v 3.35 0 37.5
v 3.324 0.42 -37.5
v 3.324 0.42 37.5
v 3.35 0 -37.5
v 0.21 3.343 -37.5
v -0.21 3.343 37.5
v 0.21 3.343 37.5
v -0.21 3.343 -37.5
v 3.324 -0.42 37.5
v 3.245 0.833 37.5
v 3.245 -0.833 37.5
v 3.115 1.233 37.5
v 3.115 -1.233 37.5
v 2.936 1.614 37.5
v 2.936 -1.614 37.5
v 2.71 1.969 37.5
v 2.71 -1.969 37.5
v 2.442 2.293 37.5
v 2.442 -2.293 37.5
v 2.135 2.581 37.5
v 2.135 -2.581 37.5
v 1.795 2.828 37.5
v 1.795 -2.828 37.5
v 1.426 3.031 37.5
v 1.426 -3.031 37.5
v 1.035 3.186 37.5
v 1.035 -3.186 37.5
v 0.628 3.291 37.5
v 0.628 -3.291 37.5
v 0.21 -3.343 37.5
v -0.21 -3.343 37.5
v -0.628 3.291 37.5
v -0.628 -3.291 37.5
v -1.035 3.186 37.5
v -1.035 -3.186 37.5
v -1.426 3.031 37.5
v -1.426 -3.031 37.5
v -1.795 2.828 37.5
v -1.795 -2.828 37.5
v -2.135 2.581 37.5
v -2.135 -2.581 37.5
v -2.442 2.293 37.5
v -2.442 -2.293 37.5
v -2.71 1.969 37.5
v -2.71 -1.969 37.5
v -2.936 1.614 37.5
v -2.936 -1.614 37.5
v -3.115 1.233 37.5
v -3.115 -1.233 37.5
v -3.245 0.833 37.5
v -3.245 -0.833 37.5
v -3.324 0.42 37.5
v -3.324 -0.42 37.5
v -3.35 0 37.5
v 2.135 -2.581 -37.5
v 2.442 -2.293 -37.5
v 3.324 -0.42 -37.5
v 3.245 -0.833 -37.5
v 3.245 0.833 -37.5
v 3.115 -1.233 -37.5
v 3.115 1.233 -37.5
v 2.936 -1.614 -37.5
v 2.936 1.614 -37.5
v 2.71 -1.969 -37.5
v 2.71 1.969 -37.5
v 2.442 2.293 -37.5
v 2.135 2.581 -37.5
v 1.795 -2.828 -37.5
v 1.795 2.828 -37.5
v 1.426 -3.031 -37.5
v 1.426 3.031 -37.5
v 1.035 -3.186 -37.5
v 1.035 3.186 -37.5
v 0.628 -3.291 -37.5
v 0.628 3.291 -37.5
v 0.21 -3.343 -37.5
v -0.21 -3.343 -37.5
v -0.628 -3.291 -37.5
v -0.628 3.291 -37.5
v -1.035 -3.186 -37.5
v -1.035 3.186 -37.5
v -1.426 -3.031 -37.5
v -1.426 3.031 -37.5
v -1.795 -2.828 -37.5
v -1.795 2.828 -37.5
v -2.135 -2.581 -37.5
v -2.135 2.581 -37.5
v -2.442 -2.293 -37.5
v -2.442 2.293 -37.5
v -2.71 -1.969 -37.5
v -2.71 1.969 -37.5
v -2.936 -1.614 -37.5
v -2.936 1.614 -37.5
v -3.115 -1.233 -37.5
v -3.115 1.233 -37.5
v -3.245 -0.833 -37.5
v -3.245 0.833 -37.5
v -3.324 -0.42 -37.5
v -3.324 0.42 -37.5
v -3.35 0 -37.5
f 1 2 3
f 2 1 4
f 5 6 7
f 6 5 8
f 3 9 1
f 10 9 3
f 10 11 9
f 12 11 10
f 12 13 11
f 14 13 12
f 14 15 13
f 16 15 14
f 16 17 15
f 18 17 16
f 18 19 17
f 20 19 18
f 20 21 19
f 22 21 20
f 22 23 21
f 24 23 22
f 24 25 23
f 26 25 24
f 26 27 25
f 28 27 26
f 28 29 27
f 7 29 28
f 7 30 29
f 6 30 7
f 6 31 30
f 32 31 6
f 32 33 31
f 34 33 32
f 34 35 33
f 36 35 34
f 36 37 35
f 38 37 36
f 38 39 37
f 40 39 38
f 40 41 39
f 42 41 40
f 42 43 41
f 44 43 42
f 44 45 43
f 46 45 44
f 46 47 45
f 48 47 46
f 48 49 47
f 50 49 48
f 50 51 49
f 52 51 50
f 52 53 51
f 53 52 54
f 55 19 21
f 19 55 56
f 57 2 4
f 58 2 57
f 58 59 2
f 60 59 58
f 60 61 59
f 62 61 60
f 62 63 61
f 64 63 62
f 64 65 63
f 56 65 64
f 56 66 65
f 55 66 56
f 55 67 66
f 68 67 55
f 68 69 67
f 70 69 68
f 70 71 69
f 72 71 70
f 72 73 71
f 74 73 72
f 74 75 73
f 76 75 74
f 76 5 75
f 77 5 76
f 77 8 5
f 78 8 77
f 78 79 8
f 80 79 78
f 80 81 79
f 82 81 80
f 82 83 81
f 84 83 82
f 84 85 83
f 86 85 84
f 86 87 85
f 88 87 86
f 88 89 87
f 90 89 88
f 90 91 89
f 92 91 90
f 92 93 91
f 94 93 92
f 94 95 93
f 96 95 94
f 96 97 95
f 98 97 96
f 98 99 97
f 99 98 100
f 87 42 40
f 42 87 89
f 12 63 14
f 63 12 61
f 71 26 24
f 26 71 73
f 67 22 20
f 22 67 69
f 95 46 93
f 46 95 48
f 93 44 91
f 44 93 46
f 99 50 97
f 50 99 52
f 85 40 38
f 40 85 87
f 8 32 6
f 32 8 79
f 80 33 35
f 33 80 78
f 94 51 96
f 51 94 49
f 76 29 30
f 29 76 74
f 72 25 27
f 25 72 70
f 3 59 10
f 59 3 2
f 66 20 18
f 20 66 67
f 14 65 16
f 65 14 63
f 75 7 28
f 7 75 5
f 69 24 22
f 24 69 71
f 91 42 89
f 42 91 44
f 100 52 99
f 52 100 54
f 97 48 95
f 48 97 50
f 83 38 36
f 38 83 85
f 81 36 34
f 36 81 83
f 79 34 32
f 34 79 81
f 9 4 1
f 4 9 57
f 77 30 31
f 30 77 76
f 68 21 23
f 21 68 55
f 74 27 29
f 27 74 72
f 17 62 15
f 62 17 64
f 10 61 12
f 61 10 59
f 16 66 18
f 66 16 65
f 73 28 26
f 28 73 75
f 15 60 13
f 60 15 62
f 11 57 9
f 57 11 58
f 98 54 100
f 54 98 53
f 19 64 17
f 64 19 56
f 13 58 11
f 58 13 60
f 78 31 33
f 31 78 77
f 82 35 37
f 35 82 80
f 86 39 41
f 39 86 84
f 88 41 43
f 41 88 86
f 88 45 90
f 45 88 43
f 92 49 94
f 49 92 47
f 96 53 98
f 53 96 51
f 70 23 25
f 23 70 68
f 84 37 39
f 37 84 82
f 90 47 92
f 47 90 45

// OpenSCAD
$fn = 50;


difference() {
	union() {
		translate(v = [0, 0, -37.5000000000]) {
			cylinder(h = 75, r = 3.3500000000);
		}
	}
	union() {
		translate(v = [0, 0, -100.0000000000]) {
			cylinder(h = 200, r = 0);
		}
	}
}
